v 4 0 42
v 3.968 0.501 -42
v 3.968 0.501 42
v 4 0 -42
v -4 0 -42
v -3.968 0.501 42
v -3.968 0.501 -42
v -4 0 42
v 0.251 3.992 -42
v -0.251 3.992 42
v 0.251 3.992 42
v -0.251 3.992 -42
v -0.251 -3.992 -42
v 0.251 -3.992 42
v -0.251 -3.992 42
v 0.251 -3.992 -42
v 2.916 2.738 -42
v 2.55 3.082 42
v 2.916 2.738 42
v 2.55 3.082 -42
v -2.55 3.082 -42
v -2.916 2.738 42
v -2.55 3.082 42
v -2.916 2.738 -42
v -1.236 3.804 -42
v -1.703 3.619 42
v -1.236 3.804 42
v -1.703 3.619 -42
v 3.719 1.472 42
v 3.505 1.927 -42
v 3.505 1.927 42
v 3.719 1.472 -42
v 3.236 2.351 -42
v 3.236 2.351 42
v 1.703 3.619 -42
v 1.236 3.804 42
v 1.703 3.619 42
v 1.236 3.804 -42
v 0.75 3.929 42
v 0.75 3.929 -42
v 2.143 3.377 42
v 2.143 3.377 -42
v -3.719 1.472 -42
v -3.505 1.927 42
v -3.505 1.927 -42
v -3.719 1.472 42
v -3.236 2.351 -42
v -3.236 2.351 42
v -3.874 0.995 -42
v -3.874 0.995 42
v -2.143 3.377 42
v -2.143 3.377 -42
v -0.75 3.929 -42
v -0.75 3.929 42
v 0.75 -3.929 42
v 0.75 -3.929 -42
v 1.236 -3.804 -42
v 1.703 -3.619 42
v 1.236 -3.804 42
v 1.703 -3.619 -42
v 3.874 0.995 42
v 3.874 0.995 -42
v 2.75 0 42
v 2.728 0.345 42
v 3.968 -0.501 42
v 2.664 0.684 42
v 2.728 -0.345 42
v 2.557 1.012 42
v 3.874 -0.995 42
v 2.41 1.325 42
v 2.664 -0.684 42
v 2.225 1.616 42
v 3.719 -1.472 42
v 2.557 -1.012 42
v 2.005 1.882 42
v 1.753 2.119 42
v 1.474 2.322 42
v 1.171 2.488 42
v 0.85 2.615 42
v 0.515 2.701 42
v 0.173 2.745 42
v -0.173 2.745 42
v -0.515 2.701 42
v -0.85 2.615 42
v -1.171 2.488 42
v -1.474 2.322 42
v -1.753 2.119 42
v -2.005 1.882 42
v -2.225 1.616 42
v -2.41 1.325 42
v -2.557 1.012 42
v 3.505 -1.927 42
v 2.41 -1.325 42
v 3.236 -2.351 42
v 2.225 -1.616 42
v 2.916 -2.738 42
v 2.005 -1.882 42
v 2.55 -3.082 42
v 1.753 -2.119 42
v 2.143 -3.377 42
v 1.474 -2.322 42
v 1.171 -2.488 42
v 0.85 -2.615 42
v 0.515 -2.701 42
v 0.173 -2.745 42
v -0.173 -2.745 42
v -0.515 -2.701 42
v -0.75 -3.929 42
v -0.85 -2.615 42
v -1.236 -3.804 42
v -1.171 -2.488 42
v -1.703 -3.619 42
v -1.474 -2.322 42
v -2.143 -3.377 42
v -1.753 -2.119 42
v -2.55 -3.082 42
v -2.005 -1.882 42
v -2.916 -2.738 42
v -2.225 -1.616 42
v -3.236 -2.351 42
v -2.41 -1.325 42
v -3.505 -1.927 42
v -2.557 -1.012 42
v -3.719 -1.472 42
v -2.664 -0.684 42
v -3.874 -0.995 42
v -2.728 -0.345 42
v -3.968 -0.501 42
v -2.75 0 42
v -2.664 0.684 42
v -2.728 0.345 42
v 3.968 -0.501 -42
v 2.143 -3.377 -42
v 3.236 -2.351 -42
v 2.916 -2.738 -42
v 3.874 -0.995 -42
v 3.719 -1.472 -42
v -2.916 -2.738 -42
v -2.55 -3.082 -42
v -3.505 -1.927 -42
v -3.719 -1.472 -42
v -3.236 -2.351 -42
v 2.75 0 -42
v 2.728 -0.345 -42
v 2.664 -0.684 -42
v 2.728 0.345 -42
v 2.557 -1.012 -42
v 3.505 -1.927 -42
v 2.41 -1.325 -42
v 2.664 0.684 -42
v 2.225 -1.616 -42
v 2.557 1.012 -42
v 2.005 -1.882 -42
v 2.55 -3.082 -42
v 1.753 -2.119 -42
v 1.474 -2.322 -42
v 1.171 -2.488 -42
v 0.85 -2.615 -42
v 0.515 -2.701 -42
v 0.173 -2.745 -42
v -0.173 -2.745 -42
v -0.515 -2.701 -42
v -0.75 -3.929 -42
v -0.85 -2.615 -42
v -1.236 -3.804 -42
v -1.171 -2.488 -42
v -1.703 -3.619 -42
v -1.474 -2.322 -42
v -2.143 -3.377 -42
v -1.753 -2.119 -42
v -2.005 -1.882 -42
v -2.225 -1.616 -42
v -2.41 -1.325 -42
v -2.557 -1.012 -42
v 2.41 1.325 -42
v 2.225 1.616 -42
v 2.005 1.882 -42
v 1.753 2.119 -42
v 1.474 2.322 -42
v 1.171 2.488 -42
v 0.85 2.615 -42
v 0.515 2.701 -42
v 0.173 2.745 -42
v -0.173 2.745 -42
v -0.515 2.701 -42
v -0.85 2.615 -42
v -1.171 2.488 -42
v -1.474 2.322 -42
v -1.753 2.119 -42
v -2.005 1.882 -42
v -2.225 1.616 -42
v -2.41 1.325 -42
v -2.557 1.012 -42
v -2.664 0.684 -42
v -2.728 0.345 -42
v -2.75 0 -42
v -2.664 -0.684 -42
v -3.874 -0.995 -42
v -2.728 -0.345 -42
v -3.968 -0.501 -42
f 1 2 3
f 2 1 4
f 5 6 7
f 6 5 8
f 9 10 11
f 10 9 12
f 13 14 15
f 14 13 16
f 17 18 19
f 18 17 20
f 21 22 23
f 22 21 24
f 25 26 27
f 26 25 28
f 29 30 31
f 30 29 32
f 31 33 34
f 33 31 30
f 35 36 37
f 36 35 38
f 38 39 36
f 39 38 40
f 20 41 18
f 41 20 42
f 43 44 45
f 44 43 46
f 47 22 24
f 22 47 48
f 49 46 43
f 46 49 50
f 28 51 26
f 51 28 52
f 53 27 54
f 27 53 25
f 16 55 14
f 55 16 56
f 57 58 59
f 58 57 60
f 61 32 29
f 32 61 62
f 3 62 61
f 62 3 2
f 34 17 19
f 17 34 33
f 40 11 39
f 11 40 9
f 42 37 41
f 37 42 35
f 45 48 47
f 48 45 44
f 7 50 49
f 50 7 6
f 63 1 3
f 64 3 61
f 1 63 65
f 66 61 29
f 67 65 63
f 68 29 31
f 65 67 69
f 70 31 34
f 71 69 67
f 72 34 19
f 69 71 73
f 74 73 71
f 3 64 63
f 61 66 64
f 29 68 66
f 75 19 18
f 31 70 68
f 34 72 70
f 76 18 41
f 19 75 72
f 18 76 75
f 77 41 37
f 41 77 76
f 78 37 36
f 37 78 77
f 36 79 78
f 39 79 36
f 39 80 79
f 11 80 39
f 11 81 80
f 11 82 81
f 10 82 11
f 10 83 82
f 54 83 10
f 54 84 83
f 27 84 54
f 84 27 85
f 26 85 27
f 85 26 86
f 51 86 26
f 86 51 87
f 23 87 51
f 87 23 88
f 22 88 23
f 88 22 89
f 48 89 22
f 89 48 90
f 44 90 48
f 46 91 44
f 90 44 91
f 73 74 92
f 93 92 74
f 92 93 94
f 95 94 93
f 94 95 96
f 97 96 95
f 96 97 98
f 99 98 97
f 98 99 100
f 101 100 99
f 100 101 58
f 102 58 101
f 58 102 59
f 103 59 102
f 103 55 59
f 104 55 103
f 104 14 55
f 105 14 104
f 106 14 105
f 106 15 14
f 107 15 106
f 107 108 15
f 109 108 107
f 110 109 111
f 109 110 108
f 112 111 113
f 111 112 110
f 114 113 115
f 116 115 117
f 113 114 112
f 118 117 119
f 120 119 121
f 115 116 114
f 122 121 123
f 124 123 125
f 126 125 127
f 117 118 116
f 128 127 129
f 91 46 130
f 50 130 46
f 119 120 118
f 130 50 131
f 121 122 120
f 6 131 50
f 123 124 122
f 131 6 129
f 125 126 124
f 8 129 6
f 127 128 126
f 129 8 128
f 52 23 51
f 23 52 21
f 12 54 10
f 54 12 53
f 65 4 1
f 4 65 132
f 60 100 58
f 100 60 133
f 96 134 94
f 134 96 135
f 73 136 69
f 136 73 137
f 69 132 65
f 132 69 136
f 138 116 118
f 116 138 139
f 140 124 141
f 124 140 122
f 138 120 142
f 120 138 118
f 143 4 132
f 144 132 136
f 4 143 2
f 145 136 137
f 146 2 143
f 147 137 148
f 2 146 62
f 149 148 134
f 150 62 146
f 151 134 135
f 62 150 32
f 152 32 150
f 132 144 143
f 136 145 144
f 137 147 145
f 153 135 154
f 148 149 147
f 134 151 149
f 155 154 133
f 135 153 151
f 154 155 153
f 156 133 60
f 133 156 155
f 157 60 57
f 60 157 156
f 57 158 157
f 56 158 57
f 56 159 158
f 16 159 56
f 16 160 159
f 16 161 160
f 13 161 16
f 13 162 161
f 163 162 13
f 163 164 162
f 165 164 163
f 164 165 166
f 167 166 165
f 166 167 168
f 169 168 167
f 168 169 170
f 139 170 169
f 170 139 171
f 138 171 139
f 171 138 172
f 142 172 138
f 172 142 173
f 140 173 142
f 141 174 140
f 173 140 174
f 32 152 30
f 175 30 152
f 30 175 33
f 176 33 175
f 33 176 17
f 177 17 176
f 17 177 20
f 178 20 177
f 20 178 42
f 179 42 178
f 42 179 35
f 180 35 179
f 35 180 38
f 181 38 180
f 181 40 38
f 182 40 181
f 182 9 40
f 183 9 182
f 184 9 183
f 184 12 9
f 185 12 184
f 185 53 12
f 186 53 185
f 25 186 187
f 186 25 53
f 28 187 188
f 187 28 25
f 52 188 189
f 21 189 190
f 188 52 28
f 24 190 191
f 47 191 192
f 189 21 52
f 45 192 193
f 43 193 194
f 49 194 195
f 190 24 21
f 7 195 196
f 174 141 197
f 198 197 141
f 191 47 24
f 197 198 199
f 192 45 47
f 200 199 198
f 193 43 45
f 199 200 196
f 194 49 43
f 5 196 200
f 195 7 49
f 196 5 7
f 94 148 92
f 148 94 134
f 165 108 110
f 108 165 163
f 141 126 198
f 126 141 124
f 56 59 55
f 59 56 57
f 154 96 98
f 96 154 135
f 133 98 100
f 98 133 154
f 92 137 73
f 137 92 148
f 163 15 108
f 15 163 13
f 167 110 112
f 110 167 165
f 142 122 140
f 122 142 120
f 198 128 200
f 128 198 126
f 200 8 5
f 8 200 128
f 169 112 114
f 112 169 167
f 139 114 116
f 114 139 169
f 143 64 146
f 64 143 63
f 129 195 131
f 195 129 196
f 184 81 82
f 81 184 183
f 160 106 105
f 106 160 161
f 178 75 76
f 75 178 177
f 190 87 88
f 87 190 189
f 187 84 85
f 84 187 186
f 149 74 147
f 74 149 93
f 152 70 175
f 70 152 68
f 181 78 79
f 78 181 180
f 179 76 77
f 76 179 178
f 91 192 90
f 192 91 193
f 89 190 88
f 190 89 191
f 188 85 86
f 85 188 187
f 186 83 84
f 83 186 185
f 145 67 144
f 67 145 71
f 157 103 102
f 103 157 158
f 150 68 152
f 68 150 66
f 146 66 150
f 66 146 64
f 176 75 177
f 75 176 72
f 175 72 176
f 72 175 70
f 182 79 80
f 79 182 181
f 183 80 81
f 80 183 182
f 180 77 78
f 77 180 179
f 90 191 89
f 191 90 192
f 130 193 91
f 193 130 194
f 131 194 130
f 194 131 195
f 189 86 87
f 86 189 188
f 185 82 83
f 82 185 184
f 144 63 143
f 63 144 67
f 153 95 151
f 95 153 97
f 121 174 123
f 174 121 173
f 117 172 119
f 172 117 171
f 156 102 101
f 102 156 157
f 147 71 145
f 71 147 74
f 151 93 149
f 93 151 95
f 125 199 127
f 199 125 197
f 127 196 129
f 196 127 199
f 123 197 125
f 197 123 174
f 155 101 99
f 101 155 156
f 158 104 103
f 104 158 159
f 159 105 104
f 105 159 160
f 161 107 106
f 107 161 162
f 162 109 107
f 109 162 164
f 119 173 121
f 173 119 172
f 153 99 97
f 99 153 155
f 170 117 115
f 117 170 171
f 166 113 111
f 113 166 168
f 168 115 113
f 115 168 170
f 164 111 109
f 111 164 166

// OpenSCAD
$fn = 50;


difference() {
	union() {
		translate(v = [0, 0, -42.0000000000]) {
			cylinder(h = 84, r = 4.0000000000);
		}
	}
	union() {
		translate(v = [0, 0, -100.0000000000]) {
			cylinder(h = 200, r = 2.7500000000);
		}
	}
}
